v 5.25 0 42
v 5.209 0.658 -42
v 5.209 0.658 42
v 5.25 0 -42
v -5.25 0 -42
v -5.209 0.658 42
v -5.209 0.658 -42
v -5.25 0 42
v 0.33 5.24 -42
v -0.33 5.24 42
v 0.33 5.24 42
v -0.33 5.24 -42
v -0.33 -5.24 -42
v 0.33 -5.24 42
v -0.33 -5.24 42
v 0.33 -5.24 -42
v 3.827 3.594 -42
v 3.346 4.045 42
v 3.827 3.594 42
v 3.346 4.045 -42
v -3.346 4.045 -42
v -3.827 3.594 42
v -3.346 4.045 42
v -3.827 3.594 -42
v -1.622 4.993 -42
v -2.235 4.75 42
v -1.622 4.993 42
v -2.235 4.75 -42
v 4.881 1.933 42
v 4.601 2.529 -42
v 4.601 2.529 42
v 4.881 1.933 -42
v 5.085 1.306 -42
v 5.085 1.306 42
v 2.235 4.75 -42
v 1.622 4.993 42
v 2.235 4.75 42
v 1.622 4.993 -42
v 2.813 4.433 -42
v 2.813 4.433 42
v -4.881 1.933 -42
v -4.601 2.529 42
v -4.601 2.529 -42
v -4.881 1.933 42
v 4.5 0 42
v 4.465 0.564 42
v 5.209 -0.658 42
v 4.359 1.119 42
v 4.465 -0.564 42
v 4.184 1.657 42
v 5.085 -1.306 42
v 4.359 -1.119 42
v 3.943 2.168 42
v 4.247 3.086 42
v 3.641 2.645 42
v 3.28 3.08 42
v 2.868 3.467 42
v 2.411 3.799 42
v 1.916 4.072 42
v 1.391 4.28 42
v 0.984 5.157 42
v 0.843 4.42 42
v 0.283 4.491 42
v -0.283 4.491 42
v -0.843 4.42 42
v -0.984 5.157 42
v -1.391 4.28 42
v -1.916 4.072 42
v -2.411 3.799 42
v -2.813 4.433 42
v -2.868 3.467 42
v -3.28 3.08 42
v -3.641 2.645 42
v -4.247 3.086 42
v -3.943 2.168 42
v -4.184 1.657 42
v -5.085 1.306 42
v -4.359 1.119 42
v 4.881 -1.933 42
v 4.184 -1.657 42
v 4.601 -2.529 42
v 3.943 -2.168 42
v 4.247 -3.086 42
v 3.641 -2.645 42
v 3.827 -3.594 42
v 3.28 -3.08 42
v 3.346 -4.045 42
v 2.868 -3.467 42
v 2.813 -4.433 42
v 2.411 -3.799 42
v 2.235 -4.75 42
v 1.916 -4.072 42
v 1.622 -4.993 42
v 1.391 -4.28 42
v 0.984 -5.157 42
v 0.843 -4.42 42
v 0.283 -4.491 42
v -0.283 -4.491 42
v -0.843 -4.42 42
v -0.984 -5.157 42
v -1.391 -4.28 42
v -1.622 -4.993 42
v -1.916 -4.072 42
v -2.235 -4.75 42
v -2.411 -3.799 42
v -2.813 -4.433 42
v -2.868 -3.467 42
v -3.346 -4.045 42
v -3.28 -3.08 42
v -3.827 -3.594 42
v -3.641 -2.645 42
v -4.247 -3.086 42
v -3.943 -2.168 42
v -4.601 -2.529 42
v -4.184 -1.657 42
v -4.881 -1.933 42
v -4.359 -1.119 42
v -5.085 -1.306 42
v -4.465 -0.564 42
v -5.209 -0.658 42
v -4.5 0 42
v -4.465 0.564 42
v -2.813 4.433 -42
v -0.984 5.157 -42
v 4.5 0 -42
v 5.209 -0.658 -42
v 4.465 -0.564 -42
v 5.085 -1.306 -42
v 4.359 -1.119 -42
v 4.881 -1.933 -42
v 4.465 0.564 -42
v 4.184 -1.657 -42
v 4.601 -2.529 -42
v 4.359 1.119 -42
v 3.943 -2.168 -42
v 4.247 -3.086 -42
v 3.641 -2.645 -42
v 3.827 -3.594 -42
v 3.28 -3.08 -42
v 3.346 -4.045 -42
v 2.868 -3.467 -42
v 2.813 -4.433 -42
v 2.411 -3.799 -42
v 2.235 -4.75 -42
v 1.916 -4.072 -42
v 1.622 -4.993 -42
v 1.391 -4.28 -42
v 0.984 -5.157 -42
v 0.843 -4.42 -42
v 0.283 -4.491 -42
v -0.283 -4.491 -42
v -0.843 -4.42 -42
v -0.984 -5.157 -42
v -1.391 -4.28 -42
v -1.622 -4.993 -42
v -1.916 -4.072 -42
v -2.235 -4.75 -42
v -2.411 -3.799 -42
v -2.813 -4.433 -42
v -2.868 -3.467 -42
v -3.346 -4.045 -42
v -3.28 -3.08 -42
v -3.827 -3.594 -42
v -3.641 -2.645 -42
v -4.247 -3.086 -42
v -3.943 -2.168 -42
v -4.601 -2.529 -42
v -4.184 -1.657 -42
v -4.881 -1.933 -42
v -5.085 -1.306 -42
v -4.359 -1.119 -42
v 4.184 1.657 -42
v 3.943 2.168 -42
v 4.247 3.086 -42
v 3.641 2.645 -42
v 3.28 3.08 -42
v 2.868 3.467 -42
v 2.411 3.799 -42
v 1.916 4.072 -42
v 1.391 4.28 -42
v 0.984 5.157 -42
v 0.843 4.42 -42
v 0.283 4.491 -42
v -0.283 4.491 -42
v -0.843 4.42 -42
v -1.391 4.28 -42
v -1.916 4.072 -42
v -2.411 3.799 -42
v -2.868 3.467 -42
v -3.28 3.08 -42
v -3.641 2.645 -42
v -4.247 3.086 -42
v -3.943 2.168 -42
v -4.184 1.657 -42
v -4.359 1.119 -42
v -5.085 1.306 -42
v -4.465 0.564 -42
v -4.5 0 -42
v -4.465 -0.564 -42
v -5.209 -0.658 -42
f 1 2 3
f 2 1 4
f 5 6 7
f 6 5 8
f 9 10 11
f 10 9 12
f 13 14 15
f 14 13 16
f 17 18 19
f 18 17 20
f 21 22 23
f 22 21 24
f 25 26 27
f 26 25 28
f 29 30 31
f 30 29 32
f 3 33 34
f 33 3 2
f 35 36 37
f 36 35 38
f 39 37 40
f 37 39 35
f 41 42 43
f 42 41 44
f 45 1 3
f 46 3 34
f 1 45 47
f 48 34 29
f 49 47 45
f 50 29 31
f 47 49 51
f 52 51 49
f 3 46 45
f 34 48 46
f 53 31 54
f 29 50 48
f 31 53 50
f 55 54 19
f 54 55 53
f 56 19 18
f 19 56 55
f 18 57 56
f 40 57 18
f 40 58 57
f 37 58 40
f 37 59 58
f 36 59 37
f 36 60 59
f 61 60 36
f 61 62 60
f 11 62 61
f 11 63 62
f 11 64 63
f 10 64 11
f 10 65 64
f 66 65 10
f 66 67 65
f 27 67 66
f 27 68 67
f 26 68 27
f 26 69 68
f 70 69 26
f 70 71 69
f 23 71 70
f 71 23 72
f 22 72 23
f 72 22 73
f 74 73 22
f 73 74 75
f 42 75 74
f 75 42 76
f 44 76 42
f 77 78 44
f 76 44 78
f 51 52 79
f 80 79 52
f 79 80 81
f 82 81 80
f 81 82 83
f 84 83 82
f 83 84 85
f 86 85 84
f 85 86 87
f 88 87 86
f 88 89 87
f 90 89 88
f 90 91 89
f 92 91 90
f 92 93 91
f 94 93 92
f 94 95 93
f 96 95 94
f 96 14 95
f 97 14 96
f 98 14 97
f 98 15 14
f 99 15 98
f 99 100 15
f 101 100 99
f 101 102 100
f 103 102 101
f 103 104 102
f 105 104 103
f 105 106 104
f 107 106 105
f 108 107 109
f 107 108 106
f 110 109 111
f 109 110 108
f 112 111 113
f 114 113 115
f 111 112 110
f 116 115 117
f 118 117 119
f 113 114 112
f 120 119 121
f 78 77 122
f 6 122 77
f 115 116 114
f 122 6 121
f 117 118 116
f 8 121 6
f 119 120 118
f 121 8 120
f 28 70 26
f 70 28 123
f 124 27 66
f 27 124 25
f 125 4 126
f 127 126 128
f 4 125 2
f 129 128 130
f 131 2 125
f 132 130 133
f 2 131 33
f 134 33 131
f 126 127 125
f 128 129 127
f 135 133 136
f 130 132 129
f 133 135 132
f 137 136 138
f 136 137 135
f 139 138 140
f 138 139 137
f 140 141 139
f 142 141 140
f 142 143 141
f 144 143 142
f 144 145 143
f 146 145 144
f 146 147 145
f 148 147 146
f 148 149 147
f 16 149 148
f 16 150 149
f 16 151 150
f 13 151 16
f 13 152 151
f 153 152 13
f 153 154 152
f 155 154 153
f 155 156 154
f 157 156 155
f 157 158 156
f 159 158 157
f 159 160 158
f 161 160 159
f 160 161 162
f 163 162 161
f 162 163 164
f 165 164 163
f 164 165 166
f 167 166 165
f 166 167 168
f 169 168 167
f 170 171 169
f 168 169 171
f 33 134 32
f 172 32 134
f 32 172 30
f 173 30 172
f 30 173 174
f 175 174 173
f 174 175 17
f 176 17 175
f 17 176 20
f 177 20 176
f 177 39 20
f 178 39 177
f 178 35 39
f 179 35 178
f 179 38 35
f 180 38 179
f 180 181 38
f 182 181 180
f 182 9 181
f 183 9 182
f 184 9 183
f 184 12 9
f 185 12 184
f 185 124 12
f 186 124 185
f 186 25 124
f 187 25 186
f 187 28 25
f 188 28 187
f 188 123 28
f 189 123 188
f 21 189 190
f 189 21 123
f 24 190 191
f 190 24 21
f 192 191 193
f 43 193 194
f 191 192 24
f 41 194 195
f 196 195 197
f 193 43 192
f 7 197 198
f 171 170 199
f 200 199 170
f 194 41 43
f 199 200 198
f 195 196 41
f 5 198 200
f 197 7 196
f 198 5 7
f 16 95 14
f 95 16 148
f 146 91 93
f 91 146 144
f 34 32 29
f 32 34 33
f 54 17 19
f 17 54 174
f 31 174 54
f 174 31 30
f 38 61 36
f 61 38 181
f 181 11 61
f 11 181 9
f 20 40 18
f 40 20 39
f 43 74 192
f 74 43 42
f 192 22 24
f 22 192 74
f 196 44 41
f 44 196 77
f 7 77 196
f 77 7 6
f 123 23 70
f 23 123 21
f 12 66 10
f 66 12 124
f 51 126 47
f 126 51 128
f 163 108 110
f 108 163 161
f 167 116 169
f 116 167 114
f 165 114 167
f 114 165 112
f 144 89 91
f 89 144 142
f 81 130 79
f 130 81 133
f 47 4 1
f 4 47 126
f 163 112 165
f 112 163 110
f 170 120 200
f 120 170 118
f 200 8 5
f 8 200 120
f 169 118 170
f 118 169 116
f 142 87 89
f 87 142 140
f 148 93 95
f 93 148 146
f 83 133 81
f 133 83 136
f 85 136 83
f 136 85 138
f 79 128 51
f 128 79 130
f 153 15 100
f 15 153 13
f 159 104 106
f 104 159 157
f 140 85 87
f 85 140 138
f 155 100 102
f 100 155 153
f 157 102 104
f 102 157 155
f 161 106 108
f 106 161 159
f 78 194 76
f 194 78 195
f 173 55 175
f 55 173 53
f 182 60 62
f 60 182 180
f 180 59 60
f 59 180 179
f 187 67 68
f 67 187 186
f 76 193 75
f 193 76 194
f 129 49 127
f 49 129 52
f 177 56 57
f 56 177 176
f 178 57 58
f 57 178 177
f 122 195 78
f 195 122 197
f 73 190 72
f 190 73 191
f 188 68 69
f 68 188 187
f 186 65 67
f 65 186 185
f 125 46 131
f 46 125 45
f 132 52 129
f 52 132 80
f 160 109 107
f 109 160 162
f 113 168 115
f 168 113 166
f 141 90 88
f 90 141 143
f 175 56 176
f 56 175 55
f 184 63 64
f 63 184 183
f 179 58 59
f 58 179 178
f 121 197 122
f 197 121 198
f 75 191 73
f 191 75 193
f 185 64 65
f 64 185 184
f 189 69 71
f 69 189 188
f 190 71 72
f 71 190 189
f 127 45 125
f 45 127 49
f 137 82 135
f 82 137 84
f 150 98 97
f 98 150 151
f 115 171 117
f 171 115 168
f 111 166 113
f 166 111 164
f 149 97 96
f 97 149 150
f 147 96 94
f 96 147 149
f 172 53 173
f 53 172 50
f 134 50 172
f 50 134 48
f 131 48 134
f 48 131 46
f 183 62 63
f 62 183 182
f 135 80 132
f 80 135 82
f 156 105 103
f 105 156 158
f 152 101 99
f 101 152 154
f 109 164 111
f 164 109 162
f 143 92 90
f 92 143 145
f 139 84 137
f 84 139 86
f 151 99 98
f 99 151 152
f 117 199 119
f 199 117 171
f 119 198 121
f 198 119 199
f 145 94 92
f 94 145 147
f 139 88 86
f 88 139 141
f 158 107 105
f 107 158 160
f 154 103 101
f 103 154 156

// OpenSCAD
$fn = 50;


difference() {
	union() {
		translate(v = [0, 0, -42.0000000000]) {
			cylinder(h = 84, r = 5.2500000000);
		}
	}
	union() {
		translate(v = [0, 0, -100.0000000000]) {
			cylinder(h = 200, r = 4.5000000000);
		}
	}
}
